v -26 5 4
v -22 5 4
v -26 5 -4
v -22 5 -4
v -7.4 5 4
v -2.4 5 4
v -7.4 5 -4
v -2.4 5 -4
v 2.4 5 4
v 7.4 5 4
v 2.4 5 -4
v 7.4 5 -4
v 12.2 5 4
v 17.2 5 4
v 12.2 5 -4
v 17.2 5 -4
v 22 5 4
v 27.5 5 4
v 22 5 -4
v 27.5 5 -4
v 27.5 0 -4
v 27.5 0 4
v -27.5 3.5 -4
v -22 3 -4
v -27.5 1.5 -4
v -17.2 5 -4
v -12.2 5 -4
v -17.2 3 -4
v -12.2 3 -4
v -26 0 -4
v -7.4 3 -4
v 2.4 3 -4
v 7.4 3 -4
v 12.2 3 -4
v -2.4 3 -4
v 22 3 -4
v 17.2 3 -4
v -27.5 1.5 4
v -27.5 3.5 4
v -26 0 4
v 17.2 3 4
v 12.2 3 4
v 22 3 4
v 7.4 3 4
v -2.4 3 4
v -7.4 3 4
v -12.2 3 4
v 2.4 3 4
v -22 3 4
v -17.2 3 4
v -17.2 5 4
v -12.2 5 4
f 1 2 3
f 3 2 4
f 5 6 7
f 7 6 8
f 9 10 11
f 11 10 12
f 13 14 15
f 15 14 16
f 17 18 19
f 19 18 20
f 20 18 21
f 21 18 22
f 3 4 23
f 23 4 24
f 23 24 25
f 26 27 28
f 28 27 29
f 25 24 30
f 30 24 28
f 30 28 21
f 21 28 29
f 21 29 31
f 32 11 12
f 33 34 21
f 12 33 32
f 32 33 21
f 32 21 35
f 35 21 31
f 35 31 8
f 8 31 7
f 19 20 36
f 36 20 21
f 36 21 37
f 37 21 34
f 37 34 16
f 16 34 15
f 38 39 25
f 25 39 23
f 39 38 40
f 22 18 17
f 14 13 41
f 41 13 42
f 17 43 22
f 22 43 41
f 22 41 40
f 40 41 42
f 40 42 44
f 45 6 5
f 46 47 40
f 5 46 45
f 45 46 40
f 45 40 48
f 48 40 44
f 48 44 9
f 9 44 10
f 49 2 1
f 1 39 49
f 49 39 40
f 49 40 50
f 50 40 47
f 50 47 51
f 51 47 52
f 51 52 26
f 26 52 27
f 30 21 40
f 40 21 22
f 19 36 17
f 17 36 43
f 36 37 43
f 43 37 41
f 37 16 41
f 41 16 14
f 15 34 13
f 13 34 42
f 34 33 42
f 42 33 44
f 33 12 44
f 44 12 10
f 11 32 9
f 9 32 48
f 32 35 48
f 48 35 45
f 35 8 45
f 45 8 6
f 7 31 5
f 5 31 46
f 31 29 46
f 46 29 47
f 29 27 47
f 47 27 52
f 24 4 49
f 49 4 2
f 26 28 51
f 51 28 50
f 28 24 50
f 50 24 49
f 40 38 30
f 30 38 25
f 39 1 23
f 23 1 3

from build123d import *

# Parameters (mm, degrees)
SKETCH_1_W          = 55
SKETCH_1_H          = 8
EXTRUDE_1_DEPTH     = 5
SKETCH_2_W          = 4.8
SKETCH_2_H          = 2
CUT_EXTRUDE_1_DEPTH = 9
CHAMFER_1_SIZE      = 1.5


with BuildPart() as part:
    # 草图1 → 凸台-拉伸1 (new body)
    with BuildSketch(Plane(origin=(0, 0, 0), x_dir=(1, 0, 0), z_dir=(0, 1, 0))):
        Rectangle(SKETCH_1_W, SKETCH_1_H)
    extrude(amount=EXTRUDE_1_DEPTH)

    # 草图2 → 切除-拉伸1 (cut, through all)
    with BuildSketch(Plane.XY.offset(4)):
        with Locations((-19.6, 4)):
            Rectangle(SKETCH_2_W, SKETCH_2_H)
        with Locations((-9.8, 4)):
            Rectangle(SKETCH_2_W, SKETCH_2_H)
        with Locations((0, 4)):
            Rectangle(SKETCH_2_W, SKETCH_2_H)
        with Locations((9.8, 4)):
            Rectangle(SKETCH_2_W, SKETCH_2_H)
        with Locations((19.6, 4)):
            Rectangle(SKETCH_2_W, SKETCH_2_H)
    extrude(amount=-CUT_EXTRUDE_1_DEPTH, mode=Mode.SUBTRACT)

    # 倒角1
    chamfer_1_edges = [part.edges().sort_by_distance(p)[0] for p in [
        (-27.5, 5, 0),
        (-27.5, 0, 0),
    ]]
    chamfer(chamfer_1_edges, length=CHAMFER_1_SIZE)


solid = part.part
